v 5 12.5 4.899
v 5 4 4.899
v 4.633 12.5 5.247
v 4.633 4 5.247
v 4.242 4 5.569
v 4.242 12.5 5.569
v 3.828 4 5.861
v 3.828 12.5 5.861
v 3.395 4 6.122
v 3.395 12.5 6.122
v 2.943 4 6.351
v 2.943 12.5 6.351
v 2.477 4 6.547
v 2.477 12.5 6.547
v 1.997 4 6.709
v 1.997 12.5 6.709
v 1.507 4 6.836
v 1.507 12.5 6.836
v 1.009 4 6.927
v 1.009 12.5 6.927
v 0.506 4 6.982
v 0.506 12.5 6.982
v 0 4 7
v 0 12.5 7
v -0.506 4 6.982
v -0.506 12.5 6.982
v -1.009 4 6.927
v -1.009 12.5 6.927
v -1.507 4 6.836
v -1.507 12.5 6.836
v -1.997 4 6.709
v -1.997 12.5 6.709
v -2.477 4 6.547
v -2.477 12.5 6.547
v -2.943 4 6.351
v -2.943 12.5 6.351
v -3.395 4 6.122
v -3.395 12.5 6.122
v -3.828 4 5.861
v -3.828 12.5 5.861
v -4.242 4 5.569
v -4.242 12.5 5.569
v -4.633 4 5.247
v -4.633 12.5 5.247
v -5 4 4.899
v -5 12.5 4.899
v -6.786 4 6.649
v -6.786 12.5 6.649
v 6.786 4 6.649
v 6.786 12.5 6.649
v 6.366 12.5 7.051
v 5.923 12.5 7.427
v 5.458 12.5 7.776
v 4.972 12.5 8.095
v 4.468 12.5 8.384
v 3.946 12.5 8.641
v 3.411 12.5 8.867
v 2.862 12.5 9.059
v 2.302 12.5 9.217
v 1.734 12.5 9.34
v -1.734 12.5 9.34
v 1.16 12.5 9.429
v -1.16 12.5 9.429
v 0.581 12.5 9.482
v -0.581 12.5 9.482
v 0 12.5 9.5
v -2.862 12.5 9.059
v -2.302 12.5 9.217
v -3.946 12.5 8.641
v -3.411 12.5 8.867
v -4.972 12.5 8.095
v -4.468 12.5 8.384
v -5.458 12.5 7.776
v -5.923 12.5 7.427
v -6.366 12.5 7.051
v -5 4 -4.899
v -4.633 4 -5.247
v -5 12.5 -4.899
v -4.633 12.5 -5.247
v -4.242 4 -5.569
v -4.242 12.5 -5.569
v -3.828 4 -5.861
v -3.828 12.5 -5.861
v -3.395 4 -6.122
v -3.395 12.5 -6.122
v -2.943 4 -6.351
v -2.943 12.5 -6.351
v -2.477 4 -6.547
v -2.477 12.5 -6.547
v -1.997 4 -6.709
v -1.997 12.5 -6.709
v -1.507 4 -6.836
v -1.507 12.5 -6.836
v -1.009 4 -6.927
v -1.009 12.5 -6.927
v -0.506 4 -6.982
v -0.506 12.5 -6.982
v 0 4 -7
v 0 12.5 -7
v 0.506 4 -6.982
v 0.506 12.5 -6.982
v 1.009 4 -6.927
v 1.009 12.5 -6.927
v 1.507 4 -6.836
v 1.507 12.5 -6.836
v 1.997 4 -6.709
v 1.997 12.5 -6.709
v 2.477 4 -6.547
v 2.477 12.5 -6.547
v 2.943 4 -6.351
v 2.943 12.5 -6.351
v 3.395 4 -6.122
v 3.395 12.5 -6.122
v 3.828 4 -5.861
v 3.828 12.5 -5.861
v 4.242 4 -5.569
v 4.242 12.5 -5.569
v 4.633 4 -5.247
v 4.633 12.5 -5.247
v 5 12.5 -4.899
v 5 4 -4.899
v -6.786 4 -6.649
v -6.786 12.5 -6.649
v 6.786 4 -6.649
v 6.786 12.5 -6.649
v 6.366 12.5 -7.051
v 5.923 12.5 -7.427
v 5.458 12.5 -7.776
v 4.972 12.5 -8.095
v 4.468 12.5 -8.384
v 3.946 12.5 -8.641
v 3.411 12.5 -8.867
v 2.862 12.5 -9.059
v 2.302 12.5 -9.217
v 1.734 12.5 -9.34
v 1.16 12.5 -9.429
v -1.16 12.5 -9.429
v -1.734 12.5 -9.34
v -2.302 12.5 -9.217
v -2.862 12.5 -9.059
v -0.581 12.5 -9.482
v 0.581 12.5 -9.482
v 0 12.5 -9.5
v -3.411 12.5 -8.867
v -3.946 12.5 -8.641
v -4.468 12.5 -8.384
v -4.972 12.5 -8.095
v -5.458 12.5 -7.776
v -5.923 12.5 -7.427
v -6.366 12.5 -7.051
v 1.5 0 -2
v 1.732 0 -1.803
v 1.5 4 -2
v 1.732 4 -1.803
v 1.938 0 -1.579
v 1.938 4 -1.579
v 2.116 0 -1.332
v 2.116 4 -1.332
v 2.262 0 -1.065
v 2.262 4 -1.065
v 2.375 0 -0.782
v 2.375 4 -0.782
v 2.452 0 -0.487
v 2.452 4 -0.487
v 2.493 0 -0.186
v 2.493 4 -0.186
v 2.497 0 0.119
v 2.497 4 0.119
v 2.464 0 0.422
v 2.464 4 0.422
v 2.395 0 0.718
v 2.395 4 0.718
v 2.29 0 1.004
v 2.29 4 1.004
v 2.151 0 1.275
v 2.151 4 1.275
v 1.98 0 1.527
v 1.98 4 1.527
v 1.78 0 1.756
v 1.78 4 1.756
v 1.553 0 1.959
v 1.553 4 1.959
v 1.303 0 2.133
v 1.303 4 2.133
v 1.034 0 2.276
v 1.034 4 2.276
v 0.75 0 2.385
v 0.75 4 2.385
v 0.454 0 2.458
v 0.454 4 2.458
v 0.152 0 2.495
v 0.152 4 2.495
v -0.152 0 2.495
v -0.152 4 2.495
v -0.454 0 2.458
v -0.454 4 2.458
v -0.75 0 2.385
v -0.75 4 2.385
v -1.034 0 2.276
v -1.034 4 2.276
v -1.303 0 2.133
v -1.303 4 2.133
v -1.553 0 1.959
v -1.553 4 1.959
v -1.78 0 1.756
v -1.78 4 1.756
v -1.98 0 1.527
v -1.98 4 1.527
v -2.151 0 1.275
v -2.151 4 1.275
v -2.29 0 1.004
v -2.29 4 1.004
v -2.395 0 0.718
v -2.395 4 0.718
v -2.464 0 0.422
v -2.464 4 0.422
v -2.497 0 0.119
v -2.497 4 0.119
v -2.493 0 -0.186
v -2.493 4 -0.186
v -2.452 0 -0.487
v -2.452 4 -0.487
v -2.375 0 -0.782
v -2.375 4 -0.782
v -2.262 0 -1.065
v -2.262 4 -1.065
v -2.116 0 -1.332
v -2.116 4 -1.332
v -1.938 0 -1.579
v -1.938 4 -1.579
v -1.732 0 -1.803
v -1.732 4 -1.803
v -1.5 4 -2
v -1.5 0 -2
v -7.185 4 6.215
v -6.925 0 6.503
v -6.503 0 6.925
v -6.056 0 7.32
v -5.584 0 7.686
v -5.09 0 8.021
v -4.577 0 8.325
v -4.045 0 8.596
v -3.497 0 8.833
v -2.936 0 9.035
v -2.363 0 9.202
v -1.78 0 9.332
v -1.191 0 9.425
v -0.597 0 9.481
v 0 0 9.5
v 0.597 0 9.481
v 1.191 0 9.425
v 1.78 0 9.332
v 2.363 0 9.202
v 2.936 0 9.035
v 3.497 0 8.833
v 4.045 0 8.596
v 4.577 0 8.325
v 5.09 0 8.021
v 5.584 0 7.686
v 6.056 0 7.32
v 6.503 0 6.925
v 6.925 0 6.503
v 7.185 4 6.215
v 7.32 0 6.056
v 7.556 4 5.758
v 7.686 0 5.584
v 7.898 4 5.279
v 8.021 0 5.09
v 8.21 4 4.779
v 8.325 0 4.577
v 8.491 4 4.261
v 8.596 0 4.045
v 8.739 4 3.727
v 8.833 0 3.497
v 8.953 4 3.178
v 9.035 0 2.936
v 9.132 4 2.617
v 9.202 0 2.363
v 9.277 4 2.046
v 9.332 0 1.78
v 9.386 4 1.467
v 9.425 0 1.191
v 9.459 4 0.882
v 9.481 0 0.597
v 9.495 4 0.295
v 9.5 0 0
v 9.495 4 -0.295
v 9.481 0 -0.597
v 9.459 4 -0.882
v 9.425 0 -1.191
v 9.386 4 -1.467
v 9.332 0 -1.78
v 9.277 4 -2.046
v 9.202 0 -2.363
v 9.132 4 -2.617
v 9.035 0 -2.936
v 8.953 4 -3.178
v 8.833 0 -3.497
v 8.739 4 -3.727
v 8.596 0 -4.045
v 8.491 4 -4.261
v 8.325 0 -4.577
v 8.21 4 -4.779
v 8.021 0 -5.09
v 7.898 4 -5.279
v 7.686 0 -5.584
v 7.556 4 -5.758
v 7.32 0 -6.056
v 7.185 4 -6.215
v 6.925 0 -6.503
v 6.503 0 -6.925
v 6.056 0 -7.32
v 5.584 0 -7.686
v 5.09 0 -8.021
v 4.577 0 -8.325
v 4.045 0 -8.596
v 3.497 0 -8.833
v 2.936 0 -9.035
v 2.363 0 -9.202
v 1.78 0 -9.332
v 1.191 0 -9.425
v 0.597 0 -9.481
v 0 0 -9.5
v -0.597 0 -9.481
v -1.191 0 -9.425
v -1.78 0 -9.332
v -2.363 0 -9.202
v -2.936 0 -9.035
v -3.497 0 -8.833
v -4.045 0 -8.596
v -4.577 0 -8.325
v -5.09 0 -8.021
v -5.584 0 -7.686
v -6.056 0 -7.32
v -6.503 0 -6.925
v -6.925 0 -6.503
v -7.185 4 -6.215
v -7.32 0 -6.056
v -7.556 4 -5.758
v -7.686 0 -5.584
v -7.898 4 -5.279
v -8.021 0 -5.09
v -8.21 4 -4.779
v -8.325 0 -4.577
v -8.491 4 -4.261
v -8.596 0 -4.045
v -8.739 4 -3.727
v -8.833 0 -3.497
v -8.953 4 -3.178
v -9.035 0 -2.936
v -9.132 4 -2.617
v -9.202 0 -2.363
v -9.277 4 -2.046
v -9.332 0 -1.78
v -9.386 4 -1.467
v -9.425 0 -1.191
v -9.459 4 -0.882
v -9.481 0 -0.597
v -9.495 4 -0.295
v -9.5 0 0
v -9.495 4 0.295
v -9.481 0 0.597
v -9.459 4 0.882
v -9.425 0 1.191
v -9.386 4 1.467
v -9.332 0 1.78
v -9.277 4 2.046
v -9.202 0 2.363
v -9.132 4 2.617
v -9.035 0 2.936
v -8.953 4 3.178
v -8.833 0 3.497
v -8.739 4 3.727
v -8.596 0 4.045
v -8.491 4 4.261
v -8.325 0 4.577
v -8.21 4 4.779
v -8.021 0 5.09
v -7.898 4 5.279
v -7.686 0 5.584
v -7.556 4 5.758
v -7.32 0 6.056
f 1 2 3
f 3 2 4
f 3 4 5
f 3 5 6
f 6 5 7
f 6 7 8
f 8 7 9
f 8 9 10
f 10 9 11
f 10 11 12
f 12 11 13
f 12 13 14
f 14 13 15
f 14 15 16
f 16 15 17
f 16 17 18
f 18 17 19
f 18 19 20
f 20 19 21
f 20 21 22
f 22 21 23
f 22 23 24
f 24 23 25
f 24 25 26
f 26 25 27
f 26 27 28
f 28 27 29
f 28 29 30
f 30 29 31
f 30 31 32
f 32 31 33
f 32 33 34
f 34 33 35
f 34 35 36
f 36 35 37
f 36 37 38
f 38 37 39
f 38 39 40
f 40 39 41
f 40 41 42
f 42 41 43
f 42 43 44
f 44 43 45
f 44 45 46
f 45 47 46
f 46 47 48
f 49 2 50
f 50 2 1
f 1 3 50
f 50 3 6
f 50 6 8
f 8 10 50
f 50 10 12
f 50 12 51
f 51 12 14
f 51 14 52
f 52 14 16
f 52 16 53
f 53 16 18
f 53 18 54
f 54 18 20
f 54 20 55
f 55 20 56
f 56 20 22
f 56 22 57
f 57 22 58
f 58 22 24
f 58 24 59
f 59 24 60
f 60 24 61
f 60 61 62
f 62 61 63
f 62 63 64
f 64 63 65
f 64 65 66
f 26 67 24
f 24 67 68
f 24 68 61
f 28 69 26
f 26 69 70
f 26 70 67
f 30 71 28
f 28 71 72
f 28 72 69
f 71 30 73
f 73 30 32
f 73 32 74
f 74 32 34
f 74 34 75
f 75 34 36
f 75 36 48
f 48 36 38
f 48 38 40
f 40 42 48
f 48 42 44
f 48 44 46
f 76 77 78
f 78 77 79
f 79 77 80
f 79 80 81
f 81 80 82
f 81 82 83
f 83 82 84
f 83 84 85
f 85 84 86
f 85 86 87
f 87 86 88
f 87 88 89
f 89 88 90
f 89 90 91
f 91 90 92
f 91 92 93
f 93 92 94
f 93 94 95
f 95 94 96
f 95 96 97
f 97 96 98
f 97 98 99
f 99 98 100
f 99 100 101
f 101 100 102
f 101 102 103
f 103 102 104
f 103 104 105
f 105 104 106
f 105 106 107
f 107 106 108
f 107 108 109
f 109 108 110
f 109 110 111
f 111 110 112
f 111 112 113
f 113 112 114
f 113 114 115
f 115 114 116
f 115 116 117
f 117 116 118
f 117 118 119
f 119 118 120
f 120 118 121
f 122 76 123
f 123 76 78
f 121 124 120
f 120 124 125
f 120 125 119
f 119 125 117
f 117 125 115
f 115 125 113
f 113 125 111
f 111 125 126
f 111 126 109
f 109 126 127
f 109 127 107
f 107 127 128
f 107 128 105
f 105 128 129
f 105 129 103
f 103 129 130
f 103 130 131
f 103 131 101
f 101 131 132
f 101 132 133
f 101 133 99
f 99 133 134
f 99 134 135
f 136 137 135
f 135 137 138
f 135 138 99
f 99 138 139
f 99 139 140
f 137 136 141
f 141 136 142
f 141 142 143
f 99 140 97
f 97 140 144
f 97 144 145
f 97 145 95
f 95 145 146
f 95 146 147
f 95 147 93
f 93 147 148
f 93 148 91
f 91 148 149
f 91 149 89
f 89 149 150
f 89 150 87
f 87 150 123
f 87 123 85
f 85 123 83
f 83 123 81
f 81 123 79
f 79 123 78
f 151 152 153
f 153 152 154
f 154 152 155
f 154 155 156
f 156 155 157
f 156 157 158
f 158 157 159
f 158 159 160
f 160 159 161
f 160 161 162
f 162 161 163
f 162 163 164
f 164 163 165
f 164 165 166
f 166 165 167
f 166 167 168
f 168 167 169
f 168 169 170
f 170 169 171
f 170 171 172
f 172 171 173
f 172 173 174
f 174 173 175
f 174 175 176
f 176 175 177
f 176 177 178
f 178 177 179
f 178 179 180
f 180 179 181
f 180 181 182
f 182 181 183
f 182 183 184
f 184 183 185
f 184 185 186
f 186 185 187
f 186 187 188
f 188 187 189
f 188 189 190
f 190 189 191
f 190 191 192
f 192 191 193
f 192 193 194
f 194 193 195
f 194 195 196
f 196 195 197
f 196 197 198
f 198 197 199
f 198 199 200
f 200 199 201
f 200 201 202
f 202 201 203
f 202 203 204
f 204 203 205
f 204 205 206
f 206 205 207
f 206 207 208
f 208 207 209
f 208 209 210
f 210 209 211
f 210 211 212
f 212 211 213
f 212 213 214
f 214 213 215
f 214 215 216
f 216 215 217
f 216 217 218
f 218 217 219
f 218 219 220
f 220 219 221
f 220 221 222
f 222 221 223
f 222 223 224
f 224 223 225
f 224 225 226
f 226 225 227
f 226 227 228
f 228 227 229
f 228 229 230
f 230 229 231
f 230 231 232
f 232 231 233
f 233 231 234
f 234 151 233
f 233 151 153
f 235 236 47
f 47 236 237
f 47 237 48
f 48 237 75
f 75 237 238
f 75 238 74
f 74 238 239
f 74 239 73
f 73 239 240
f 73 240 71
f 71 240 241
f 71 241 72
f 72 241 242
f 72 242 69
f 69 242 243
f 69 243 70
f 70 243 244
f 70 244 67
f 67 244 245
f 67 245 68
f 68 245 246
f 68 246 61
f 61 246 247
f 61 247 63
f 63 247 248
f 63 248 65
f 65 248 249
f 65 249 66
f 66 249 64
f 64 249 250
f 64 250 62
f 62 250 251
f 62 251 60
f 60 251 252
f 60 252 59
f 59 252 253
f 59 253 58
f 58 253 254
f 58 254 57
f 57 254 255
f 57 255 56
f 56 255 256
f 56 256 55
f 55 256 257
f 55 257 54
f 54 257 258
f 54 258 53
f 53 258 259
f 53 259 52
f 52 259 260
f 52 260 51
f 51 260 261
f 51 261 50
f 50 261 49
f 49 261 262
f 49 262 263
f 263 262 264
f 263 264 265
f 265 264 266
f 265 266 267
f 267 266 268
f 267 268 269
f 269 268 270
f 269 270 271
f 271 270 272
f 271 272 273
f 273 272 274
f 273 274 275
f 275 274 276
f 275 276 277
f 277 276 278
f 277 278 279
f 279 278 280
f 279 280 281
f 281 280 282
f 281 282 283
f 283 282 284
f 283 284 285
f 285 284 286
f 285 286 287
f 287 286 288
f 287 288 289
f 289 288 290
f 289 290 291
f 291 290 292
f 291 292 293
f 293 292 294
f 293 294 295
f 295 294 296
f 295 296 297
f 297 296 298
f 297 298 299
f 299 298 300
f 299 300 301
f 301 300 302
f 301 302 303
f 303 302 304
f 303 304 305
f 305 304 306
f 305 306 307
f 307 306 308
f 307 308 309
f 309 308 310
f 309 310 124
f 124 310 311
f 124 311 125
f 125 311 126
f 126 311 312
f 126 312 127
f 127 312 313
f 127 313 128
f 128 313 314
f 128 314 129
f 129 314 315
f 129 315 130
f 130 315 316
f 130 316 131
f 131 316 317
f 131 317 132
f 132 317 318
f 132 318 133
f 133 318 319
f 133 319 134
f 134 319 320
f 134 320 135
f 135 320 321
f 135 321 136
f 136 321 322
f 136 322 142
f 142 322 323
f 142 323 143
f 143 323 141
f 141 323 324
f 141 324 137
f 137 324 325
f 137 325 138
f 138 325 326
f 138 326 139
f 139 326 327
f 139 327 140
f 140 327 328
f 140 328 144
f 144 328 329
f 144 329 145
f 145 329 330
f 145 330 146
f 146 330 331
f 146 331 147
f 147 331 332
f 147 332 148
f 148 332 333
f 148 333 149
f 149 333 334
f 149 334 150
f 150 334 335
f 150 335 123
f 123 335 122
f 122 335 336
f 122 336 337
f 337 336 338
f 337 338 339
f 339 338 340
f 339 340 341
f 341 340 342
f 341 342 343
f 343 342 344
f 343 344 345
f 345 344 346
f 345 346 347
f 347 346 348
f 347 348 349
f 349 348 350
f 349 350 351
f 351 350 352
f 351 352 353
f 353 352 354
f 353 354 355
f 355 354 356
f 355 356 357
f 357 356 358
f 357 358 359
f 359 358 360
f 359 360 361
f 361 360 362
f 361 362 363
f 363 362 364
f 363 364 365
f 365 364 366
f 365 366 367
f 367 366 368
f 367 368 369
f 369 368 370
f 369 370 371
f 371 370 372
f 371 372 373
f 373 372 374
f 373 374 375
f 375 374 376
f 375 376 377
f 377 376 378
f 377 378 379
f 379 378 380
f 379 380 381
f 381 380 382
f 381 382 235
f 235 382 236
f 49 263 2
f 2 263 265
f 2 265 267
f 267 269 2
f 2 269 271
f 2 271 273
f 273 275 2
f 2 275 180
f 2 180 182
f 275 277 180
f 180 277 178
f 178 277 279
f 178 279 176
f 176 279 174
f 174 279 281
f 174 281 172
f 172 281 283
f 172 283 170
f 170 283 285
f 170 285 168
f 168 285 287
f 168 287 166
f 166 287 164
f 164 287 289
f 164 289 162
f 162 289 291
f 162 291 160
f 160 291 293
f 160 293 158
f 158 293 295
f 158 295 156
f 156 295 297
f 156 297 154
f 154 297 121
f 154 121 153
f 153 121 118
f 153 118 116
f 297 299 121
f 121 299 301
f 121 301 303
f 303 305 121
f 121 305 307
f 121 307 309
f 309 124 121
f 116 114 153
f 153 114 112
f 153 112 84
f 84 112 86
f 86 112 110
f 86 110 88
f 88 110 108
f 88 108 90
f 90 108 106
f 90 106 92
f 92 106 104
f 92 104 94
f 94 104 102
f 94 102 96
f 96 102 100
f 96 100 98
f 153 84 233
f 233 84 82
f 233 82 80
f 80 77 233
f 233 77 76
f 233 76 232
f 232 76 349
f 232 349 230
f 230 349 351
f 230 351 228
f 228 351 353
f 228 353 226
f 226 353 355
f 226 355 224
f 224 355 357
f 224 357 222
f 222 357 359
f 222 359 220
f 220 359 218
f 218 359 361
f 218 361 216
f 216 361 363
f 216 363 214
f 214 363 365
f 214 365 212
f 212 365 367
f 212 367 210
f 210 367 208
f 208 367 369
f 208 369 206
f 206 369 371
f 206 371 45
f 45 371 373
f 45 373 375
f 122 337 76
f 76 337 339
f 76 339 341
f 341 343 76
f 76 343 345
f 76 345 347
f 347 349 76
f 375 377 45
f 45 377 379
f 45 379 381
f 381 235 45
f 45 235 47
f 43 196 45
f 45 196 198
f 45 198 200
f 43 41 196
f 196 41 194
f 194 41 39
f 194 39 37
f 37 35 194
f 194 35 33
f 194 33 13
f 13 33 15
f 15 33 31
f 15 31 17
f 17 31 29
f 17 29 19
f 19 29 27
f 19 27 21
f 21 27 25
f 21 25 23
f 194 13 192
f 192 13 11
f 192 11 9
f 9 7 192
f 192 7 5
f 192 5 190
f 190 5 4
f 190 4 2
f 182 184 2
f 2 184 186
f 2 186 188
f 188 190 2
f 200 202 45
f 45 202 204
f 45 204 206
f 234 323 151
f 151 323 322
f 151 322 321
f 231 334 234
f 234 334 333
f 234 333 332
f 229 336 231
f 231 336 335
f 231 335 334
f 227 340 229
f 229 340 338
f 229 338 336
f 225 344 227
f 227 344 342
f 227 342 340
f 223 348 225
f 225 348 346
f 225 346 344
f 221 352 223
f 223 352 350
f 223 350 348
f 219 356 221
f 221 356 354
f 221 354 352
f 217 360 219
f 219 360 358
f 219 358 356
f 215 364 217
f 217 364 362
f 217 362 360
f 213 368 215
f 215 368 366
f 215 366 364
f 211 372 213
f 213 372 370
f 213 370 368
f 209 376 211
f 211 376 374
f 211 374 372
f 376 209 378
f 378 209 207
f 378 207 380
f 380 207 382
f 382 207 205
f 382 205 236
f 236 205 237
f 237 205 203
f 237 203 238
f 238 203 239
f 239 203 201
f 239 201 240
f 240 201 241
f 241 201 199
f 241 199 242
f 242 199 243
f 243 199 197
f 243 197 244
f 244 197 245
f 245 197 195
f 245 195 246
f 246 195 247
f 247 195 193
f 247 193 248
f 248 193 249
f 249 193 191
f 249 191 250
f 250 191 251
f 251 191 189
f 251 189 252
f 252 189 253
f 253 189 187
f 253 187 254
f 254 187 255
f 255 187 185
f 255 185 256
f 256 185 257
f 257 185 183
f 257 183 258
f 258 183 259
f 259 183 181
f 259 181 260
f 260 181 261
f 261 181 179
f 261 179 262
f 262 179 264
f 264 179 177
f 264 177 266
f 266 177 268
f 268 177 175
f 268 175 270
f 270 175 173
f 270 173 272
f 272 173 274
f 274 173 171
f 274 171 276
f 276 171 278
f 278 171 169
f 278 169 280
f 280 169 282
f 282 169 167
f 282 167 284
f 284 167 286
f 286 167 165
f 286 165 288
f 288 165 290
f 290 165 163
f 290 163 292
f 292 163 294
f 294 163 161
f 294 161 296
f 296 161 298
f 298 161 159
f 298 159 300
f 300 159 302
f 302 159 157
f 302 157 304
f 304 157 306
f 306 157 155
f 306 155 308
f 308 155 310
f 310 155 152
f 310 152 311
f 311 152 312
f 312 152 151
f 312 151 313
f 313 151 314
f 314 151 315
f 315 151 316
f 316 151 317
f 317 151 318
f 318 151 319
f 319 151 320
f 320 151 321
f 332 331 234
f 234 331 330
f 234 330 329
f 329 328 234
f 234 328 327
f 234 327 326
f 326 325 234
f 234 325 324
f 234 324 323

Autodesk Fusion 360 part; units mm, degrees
sketch "Sketch1" plane through (0, 0, 0) normal (0, 1, 0) x (1, 0, 0)
  arc A0 (-1.5, 2) -> (1.5, 2) centre (0, 0) ccw
  line L0 (1.5, 2) -> (-1.5, 2)
  circle A1 centre (0, 0) radius 9.5
  dimension "d1" = 3
  dimension "d2" = 2.5
  dimension "d3" = 19
extrude "Extrude1" add sketch "Sketch1" along normal blind 4
sketch "Sketch2" plane through (0, 4, 0) normal (0, 1, 0) x (-1, 0, 0)
  arc A0 (1.5, -2) -> (-1.5, -2) centre (0, 0) ccw
  line L0 (1.5, -2) -> (-1.5, -2)
  line L1 (4.5, -7) -> (-4.5, -7) construction
  line L2 (0, -14.5329) -> (0, 17.7812) construction
  circle A1 centre (0, 0) radius 9.5 construction
  circle A2 centre (0, 0) radius 7 construction
  line L3 (6.7857, -6.6486) -> (5, -4.899)
  line L4 (-5, -4.899) -> (-6.7857, -6.6486)
  arc A3 (-5, -4.899) -> (5, -4.899) centre (0, 0) ccw
  arc A4 (-6.7857, -6.6486) -> (6.7857, -6.6486) centre (0, 0) ccw
  dimension "d6" = 3
  dimension "d7" = 2.5
  dimension "d8" = 9
  dimension "d9" = 4.5
  dimension "d10" = 14
  dimension "d14" = 10
  dimension "d15" = 7
  dimension "d16" = 9.5
extrude "Extrude2" add sketch "Sketch2" along normal blind 8.5 contours L3 L4 A3 A4
mirror "Mirror1" about plane through (0, 0, 0) normal (0, 0, 1) of "Extrude2"
